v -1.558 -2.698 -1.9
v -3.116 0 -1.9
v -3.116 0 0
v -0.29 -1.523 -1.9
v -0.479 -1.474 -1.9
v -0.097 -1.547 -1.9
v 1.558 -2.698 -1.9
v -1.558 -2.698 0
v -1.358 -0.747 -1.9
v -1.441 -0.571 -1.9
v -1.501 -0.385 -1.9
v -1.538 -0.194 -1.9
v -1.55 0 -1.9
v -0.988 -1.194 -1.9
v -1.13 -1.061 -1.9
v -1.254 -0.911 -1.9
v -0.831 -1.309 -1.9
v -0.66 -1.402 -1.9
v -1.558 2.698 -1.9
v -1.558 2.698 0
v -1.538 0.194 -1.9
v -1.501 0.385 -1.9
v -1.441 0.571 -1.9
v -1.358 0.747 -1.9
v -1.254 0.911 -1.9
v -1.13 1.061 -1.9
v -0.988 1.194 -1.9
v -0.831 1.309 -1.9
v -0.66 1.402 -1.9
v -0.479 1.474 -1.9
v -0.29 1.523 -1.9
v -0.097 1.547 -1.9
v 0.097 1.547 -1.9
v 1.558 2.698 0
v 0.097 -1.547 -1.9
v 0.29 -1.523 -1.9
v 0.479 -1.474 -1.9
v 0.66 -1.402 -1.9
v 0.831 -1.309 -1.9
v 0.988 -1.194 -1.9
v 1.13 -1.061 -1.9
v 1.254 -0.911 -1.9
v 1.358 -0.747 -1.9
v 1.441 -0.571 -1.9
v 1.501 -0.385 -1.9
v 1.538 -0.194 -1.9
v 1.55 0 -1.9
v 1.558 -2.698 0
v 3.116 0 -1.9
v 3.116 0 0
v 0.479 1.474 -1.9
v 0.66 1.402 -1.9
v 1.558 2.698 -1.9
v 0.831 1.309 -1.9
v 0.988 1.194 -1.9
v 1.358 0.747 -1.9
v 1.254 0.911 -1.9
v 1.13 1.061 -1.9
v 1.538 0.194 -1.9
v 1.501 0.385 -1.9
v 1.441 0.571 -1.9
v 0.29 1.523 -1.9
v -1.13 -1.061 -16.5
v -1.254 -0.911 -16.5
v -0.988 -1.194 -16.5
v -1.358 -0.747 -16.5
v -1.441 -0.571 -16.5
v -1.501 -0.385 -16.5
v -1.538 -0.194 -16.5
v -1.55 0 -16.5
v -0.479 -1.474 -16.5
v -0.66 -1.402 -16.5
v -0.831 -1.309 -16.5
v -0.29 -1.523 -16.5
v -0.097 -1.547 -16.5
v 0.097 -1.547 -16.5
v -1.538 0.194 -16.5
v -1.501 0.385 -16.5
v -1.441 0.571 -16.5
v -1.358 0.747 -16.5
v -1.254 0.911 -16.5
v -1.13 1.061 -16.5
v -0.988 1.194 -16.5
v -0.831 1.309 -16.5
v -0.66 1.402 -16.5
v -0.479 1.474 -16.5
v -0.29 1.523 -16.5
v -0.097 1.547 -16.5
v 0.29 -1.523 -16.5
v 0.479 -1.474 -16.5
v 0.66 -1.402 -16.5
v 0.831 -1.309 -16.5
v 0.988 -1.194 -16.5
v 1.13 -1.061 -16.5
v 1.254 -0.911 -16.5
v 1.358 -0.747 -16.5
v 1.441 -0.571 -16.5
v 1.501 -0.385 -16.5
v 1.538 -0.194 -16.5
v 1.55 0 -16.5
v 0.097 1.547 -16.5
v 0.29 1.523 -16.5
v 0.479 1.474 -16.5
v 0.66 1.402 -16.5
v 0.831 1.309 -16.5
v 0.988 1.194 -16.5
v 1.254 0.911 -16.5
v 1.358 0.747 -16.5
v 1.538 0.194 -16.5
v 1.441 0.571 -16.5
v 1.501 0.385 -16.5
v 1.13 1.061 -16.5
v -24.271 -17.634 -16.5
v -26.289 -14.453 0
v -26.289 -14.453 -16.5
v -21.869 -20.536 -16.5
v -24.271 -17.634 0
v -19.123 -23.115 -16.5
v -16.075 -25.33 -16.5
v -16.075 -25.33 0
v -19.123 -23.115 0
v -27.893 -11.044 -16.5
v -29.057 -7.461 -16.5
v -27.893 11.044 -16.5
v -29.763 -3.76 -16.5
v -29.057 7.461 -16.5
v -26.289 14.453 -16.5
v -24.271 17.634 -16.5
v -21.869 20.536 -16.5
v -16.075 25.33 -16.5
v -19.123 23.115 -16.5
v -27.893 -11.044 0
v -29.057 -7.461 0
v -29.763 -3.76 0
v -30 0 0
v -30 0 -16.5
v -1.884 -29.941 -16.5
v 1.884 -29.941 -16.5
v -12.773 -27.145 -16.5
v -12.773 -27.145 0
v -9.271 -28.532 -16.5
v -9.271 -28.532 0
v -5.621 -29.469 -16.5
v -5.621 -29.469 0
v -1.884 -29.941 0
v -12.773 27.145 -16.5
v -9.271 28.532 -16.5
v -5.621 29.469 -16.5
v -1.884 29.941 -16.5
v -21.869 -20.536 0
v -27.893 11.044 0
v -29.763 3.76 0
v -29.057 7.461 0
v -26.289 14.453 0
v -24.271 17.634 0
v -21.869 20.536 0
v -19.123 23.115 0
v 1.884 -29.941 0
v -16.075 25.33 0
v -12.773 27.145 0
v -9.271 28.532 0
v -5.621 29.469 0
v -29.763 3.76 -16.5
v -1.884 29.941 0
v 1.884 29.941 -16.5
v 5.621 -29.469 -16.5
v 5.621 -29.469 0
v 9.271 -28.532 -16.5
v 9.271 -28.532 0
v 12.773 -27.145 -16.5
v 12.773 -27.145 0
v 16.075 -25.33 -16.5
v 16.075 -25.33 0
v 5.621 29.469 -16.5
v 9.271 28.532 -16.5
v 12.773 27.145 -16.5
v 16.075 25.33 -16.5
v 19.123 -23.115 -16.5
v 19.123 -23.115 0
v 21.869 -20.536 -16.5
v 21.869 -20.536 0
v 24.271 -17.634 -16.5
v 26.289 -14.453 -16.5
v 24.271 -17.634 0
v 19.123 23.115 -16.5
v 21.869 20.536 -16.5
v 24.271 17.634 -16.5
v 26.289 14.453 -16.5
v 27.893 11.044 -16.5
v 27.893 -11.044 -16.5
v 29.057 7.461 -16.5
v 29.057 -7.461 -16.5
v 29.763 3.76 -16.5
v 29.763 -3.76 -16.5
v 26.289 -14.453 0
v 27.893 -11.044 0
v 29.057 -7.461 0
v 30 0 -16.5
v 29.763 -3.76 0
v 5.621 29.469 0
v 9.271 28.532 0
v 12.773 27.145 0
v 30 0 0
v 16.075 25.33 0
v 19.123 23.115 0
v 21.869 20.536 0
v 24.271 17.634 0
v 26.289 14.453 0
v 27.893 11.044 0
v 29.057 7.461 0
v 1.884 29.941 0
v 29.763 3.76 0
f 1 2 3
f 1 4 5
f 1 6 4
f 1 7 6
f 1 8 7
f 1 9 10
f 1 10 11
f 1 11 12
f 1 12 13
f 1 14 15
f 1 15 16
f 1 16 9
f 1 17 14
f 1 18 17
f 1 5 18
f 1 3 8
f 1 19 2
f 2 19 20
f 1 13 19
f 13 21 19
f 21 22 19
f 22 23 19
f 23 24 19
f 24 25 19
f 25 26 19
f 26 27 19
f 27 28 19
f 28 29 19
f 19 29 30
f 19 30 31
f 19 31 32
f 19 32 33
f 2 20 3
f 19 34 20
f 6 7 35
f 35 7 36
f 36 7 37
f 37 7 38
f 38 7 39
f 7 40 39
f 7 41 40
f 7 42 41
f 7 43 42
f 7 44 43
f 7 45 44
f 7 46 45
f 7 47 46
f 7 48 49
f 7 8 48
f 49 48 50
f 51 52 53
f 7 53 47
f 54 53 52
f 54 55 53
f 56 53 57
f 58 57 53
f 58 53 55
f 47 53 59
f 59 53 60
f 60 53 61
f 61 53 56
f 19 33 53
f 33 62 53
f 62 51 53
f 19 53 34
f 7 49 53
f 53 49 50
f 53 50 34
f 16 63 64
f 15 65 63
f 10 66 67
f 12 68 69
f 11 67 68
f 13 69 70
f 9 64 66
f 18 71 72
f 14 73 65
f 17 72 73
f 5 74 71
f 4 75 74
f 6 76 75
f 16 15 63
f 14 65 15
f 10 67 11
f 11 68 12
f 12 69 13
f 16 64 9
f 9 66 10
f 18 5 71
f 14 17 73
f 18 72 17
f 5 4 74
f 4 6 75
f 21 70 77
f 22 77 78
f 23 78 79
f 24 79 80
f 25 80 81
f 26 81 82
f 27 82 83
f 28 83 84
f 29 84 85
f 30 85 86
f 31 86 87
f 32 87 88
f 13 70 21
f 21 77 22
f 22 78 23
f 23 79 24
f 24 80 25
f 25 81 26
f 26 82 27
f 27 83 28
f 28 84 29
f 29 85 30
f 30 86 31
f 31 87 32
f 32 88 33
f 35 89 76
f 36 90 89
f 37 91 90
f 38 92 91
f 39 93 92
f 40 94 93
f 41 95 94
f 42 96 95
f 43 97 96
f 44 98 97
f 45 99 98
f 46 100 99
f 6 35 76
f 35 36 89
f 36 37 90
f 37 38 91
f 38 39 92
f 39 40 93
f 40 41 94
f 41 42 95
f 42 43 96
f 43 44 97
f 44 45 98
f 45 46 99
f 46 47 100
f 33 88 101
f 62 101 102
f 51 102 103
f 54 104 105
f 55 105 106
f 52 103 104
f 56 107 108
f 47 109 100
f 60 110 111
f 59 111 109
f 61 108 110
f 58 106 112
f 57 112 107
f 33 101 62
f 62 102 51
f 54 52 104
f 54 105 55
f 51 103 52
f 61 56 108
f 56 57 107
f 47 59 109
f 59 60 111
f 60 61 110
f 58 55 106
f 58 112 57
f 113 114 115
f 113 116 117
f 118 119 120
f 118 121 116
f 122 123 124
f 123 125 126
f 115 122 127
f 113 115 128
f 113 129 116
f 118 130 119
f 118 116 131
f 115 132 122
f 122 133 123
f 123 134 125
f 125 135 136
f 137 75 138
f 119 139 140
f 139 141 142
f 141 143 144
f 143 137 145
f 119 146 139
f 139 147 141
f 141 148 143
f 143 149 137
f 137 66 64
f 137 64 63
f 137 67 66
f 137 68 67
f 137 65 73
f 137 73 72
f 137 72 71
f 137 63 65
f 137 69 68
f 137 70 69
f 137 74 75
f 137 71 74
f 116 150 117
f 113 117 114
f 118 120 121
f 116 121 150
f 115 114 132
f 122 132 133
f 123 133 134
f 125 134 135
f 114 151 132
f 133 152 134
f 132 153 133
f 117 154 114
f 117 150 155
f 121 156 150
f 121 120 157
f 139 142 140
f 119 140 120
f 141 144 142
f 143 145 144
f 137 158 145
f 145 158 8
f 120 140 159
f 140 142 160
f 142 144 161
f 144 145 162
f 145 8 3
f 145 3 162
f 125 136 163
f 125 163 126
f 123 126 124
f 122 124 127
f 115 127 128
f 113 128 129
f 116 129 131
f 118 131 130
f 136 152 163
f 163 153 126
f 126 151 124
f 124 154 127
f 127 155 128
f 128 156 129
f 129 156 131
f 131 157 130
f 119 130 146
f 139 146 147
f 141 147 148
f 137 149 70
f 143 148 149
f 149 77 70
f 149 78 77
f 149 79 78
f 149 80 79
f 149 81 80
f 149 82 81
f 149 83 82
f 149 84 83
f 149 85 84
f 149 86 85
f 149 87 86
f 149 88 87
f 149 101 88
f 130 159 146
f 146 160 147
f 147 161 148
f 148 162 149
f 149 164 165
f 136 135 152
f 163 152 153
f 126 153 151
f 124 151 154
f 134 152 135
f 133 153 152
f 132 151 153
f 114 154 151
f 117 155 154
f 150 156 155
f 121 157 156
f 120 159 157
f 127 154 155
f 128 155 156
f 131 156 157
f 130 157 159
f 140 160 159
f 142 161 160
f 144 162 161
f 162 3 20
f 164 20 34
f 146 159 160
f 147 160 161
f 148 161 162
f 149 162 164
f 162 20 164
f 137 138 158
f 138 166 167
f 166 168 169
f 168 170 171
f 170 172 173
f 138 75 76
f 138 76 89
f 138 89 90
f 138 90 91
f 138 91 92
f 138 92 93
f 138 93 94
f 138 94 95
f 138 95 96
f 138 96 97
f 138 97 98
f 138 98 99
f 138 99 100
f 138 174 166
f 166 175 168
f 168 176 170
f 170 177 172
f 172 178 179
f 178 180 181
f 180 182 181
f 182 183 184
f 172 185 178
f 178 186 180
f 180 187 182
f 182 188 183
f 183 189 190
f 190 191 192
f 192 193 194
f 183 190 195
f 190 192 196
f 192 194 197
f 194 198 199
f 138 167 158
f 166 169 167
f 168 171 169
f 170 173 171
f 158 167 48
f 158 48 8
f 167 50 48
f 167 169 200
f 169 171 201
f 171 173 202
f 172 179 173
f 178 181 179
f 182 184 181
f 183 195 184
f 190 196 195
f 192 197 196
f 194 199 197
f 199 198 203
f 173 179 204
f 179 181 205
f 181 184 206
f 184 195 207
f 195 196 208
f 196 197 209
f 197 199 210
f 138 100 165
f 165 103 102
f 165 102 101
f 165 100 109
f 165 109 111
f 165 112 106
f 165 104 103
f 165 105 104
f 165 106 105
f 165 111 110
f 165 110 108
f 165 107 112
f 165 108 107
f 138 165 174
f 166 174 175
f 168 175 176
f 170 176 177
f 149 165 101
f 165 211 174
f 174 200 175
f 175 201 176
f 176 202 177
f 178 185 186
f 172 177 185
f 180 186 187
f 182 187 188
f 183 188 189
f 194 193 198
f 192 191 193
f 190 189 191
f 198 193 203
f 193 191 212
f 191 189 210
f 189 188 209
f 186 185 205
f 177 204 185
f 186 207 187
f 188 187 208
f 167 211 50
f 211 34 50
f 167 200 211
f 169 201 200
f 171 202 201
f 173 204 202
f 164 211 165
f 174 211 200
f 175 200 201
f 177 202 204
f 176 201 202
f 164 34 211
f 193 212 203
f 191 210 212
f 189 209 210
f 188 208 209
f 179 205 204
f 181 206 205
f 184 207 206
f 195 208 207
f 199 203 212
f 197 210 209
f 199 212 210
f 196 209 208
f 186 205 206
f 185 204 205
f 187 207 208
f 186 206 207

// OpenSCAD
$fn = 50;

difference() {
	union() {
		translate(v = [0, 0, -16.5]) {
			cylinder(h = 16.5, r = 30.0);
		}
	}
	union() {
		translate(v = [0, 0, 0]) {
			rotate(a = [0, 0, 0]) {
				difference() {
					union() {
						translate(v = [0, 0, -1.9]) {
							linear_extrude(height = 1.9) {
								polygon(points = [[3.1158, 0.0], [1.5579000000000005, 2.698361953111554], [-1.5578999999999994, 2.6983619531115544], [-3.1158, 3.815754496783323e-16], [-1.5579000000000014, -2.6983619531115535], [1.557899999999998, -2.6983619531115552]]);
							}
						}
					}
					union();
				}
			}
		}
		#translate(v = [0, 0, -100.0]) {
			cylinder(h = 200, r = 1.55);
		}
	}
}
